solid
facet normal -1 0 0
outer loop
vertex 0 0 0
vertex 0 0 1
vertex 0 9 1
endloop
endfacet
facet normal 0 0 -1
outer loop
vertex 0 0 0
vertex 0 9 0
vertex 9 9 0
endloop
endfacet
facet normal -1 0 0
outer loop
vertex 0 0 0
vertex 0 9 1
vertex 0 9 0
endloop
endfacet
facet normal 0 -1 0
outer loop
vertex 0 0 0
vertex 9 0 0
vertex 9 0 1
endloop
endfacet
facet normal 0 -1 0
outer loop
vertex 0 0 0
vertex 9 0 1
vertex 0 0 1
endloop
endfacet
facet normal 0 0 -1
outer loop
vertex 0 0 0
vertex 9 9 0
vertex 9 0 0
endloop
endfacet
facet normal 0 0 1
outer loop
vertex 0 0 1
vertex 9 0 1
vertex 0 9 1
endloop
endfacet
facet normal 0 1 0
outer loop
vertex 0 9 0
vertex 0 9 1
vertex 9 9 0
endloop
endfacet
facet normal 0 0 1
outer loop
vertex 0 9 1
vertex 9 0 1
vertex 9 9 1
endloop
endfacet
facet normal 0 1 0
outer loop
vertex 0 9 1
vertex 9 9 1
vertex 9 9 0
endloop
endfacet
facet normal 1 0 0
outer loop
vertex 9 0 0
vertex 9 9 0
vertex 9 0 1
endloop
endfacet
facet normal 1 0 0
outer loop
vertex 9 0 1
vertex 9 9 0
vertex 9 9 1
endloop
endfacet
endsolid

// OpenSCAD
/* Warning, this is a very basic generator with a lot of approximation 
input data : [VQFN, UAB, 9x9x1.0mm, 64, , A, C04-21490A]
generated by com.zoubworld.electronics.cad.model3d.Basic
Date : Sun Feb 15 10:50:49 CET 2026
*/

//body
color("black")
translate([0,0,0])
cube([9.0,9.0,1.0], center=false);
